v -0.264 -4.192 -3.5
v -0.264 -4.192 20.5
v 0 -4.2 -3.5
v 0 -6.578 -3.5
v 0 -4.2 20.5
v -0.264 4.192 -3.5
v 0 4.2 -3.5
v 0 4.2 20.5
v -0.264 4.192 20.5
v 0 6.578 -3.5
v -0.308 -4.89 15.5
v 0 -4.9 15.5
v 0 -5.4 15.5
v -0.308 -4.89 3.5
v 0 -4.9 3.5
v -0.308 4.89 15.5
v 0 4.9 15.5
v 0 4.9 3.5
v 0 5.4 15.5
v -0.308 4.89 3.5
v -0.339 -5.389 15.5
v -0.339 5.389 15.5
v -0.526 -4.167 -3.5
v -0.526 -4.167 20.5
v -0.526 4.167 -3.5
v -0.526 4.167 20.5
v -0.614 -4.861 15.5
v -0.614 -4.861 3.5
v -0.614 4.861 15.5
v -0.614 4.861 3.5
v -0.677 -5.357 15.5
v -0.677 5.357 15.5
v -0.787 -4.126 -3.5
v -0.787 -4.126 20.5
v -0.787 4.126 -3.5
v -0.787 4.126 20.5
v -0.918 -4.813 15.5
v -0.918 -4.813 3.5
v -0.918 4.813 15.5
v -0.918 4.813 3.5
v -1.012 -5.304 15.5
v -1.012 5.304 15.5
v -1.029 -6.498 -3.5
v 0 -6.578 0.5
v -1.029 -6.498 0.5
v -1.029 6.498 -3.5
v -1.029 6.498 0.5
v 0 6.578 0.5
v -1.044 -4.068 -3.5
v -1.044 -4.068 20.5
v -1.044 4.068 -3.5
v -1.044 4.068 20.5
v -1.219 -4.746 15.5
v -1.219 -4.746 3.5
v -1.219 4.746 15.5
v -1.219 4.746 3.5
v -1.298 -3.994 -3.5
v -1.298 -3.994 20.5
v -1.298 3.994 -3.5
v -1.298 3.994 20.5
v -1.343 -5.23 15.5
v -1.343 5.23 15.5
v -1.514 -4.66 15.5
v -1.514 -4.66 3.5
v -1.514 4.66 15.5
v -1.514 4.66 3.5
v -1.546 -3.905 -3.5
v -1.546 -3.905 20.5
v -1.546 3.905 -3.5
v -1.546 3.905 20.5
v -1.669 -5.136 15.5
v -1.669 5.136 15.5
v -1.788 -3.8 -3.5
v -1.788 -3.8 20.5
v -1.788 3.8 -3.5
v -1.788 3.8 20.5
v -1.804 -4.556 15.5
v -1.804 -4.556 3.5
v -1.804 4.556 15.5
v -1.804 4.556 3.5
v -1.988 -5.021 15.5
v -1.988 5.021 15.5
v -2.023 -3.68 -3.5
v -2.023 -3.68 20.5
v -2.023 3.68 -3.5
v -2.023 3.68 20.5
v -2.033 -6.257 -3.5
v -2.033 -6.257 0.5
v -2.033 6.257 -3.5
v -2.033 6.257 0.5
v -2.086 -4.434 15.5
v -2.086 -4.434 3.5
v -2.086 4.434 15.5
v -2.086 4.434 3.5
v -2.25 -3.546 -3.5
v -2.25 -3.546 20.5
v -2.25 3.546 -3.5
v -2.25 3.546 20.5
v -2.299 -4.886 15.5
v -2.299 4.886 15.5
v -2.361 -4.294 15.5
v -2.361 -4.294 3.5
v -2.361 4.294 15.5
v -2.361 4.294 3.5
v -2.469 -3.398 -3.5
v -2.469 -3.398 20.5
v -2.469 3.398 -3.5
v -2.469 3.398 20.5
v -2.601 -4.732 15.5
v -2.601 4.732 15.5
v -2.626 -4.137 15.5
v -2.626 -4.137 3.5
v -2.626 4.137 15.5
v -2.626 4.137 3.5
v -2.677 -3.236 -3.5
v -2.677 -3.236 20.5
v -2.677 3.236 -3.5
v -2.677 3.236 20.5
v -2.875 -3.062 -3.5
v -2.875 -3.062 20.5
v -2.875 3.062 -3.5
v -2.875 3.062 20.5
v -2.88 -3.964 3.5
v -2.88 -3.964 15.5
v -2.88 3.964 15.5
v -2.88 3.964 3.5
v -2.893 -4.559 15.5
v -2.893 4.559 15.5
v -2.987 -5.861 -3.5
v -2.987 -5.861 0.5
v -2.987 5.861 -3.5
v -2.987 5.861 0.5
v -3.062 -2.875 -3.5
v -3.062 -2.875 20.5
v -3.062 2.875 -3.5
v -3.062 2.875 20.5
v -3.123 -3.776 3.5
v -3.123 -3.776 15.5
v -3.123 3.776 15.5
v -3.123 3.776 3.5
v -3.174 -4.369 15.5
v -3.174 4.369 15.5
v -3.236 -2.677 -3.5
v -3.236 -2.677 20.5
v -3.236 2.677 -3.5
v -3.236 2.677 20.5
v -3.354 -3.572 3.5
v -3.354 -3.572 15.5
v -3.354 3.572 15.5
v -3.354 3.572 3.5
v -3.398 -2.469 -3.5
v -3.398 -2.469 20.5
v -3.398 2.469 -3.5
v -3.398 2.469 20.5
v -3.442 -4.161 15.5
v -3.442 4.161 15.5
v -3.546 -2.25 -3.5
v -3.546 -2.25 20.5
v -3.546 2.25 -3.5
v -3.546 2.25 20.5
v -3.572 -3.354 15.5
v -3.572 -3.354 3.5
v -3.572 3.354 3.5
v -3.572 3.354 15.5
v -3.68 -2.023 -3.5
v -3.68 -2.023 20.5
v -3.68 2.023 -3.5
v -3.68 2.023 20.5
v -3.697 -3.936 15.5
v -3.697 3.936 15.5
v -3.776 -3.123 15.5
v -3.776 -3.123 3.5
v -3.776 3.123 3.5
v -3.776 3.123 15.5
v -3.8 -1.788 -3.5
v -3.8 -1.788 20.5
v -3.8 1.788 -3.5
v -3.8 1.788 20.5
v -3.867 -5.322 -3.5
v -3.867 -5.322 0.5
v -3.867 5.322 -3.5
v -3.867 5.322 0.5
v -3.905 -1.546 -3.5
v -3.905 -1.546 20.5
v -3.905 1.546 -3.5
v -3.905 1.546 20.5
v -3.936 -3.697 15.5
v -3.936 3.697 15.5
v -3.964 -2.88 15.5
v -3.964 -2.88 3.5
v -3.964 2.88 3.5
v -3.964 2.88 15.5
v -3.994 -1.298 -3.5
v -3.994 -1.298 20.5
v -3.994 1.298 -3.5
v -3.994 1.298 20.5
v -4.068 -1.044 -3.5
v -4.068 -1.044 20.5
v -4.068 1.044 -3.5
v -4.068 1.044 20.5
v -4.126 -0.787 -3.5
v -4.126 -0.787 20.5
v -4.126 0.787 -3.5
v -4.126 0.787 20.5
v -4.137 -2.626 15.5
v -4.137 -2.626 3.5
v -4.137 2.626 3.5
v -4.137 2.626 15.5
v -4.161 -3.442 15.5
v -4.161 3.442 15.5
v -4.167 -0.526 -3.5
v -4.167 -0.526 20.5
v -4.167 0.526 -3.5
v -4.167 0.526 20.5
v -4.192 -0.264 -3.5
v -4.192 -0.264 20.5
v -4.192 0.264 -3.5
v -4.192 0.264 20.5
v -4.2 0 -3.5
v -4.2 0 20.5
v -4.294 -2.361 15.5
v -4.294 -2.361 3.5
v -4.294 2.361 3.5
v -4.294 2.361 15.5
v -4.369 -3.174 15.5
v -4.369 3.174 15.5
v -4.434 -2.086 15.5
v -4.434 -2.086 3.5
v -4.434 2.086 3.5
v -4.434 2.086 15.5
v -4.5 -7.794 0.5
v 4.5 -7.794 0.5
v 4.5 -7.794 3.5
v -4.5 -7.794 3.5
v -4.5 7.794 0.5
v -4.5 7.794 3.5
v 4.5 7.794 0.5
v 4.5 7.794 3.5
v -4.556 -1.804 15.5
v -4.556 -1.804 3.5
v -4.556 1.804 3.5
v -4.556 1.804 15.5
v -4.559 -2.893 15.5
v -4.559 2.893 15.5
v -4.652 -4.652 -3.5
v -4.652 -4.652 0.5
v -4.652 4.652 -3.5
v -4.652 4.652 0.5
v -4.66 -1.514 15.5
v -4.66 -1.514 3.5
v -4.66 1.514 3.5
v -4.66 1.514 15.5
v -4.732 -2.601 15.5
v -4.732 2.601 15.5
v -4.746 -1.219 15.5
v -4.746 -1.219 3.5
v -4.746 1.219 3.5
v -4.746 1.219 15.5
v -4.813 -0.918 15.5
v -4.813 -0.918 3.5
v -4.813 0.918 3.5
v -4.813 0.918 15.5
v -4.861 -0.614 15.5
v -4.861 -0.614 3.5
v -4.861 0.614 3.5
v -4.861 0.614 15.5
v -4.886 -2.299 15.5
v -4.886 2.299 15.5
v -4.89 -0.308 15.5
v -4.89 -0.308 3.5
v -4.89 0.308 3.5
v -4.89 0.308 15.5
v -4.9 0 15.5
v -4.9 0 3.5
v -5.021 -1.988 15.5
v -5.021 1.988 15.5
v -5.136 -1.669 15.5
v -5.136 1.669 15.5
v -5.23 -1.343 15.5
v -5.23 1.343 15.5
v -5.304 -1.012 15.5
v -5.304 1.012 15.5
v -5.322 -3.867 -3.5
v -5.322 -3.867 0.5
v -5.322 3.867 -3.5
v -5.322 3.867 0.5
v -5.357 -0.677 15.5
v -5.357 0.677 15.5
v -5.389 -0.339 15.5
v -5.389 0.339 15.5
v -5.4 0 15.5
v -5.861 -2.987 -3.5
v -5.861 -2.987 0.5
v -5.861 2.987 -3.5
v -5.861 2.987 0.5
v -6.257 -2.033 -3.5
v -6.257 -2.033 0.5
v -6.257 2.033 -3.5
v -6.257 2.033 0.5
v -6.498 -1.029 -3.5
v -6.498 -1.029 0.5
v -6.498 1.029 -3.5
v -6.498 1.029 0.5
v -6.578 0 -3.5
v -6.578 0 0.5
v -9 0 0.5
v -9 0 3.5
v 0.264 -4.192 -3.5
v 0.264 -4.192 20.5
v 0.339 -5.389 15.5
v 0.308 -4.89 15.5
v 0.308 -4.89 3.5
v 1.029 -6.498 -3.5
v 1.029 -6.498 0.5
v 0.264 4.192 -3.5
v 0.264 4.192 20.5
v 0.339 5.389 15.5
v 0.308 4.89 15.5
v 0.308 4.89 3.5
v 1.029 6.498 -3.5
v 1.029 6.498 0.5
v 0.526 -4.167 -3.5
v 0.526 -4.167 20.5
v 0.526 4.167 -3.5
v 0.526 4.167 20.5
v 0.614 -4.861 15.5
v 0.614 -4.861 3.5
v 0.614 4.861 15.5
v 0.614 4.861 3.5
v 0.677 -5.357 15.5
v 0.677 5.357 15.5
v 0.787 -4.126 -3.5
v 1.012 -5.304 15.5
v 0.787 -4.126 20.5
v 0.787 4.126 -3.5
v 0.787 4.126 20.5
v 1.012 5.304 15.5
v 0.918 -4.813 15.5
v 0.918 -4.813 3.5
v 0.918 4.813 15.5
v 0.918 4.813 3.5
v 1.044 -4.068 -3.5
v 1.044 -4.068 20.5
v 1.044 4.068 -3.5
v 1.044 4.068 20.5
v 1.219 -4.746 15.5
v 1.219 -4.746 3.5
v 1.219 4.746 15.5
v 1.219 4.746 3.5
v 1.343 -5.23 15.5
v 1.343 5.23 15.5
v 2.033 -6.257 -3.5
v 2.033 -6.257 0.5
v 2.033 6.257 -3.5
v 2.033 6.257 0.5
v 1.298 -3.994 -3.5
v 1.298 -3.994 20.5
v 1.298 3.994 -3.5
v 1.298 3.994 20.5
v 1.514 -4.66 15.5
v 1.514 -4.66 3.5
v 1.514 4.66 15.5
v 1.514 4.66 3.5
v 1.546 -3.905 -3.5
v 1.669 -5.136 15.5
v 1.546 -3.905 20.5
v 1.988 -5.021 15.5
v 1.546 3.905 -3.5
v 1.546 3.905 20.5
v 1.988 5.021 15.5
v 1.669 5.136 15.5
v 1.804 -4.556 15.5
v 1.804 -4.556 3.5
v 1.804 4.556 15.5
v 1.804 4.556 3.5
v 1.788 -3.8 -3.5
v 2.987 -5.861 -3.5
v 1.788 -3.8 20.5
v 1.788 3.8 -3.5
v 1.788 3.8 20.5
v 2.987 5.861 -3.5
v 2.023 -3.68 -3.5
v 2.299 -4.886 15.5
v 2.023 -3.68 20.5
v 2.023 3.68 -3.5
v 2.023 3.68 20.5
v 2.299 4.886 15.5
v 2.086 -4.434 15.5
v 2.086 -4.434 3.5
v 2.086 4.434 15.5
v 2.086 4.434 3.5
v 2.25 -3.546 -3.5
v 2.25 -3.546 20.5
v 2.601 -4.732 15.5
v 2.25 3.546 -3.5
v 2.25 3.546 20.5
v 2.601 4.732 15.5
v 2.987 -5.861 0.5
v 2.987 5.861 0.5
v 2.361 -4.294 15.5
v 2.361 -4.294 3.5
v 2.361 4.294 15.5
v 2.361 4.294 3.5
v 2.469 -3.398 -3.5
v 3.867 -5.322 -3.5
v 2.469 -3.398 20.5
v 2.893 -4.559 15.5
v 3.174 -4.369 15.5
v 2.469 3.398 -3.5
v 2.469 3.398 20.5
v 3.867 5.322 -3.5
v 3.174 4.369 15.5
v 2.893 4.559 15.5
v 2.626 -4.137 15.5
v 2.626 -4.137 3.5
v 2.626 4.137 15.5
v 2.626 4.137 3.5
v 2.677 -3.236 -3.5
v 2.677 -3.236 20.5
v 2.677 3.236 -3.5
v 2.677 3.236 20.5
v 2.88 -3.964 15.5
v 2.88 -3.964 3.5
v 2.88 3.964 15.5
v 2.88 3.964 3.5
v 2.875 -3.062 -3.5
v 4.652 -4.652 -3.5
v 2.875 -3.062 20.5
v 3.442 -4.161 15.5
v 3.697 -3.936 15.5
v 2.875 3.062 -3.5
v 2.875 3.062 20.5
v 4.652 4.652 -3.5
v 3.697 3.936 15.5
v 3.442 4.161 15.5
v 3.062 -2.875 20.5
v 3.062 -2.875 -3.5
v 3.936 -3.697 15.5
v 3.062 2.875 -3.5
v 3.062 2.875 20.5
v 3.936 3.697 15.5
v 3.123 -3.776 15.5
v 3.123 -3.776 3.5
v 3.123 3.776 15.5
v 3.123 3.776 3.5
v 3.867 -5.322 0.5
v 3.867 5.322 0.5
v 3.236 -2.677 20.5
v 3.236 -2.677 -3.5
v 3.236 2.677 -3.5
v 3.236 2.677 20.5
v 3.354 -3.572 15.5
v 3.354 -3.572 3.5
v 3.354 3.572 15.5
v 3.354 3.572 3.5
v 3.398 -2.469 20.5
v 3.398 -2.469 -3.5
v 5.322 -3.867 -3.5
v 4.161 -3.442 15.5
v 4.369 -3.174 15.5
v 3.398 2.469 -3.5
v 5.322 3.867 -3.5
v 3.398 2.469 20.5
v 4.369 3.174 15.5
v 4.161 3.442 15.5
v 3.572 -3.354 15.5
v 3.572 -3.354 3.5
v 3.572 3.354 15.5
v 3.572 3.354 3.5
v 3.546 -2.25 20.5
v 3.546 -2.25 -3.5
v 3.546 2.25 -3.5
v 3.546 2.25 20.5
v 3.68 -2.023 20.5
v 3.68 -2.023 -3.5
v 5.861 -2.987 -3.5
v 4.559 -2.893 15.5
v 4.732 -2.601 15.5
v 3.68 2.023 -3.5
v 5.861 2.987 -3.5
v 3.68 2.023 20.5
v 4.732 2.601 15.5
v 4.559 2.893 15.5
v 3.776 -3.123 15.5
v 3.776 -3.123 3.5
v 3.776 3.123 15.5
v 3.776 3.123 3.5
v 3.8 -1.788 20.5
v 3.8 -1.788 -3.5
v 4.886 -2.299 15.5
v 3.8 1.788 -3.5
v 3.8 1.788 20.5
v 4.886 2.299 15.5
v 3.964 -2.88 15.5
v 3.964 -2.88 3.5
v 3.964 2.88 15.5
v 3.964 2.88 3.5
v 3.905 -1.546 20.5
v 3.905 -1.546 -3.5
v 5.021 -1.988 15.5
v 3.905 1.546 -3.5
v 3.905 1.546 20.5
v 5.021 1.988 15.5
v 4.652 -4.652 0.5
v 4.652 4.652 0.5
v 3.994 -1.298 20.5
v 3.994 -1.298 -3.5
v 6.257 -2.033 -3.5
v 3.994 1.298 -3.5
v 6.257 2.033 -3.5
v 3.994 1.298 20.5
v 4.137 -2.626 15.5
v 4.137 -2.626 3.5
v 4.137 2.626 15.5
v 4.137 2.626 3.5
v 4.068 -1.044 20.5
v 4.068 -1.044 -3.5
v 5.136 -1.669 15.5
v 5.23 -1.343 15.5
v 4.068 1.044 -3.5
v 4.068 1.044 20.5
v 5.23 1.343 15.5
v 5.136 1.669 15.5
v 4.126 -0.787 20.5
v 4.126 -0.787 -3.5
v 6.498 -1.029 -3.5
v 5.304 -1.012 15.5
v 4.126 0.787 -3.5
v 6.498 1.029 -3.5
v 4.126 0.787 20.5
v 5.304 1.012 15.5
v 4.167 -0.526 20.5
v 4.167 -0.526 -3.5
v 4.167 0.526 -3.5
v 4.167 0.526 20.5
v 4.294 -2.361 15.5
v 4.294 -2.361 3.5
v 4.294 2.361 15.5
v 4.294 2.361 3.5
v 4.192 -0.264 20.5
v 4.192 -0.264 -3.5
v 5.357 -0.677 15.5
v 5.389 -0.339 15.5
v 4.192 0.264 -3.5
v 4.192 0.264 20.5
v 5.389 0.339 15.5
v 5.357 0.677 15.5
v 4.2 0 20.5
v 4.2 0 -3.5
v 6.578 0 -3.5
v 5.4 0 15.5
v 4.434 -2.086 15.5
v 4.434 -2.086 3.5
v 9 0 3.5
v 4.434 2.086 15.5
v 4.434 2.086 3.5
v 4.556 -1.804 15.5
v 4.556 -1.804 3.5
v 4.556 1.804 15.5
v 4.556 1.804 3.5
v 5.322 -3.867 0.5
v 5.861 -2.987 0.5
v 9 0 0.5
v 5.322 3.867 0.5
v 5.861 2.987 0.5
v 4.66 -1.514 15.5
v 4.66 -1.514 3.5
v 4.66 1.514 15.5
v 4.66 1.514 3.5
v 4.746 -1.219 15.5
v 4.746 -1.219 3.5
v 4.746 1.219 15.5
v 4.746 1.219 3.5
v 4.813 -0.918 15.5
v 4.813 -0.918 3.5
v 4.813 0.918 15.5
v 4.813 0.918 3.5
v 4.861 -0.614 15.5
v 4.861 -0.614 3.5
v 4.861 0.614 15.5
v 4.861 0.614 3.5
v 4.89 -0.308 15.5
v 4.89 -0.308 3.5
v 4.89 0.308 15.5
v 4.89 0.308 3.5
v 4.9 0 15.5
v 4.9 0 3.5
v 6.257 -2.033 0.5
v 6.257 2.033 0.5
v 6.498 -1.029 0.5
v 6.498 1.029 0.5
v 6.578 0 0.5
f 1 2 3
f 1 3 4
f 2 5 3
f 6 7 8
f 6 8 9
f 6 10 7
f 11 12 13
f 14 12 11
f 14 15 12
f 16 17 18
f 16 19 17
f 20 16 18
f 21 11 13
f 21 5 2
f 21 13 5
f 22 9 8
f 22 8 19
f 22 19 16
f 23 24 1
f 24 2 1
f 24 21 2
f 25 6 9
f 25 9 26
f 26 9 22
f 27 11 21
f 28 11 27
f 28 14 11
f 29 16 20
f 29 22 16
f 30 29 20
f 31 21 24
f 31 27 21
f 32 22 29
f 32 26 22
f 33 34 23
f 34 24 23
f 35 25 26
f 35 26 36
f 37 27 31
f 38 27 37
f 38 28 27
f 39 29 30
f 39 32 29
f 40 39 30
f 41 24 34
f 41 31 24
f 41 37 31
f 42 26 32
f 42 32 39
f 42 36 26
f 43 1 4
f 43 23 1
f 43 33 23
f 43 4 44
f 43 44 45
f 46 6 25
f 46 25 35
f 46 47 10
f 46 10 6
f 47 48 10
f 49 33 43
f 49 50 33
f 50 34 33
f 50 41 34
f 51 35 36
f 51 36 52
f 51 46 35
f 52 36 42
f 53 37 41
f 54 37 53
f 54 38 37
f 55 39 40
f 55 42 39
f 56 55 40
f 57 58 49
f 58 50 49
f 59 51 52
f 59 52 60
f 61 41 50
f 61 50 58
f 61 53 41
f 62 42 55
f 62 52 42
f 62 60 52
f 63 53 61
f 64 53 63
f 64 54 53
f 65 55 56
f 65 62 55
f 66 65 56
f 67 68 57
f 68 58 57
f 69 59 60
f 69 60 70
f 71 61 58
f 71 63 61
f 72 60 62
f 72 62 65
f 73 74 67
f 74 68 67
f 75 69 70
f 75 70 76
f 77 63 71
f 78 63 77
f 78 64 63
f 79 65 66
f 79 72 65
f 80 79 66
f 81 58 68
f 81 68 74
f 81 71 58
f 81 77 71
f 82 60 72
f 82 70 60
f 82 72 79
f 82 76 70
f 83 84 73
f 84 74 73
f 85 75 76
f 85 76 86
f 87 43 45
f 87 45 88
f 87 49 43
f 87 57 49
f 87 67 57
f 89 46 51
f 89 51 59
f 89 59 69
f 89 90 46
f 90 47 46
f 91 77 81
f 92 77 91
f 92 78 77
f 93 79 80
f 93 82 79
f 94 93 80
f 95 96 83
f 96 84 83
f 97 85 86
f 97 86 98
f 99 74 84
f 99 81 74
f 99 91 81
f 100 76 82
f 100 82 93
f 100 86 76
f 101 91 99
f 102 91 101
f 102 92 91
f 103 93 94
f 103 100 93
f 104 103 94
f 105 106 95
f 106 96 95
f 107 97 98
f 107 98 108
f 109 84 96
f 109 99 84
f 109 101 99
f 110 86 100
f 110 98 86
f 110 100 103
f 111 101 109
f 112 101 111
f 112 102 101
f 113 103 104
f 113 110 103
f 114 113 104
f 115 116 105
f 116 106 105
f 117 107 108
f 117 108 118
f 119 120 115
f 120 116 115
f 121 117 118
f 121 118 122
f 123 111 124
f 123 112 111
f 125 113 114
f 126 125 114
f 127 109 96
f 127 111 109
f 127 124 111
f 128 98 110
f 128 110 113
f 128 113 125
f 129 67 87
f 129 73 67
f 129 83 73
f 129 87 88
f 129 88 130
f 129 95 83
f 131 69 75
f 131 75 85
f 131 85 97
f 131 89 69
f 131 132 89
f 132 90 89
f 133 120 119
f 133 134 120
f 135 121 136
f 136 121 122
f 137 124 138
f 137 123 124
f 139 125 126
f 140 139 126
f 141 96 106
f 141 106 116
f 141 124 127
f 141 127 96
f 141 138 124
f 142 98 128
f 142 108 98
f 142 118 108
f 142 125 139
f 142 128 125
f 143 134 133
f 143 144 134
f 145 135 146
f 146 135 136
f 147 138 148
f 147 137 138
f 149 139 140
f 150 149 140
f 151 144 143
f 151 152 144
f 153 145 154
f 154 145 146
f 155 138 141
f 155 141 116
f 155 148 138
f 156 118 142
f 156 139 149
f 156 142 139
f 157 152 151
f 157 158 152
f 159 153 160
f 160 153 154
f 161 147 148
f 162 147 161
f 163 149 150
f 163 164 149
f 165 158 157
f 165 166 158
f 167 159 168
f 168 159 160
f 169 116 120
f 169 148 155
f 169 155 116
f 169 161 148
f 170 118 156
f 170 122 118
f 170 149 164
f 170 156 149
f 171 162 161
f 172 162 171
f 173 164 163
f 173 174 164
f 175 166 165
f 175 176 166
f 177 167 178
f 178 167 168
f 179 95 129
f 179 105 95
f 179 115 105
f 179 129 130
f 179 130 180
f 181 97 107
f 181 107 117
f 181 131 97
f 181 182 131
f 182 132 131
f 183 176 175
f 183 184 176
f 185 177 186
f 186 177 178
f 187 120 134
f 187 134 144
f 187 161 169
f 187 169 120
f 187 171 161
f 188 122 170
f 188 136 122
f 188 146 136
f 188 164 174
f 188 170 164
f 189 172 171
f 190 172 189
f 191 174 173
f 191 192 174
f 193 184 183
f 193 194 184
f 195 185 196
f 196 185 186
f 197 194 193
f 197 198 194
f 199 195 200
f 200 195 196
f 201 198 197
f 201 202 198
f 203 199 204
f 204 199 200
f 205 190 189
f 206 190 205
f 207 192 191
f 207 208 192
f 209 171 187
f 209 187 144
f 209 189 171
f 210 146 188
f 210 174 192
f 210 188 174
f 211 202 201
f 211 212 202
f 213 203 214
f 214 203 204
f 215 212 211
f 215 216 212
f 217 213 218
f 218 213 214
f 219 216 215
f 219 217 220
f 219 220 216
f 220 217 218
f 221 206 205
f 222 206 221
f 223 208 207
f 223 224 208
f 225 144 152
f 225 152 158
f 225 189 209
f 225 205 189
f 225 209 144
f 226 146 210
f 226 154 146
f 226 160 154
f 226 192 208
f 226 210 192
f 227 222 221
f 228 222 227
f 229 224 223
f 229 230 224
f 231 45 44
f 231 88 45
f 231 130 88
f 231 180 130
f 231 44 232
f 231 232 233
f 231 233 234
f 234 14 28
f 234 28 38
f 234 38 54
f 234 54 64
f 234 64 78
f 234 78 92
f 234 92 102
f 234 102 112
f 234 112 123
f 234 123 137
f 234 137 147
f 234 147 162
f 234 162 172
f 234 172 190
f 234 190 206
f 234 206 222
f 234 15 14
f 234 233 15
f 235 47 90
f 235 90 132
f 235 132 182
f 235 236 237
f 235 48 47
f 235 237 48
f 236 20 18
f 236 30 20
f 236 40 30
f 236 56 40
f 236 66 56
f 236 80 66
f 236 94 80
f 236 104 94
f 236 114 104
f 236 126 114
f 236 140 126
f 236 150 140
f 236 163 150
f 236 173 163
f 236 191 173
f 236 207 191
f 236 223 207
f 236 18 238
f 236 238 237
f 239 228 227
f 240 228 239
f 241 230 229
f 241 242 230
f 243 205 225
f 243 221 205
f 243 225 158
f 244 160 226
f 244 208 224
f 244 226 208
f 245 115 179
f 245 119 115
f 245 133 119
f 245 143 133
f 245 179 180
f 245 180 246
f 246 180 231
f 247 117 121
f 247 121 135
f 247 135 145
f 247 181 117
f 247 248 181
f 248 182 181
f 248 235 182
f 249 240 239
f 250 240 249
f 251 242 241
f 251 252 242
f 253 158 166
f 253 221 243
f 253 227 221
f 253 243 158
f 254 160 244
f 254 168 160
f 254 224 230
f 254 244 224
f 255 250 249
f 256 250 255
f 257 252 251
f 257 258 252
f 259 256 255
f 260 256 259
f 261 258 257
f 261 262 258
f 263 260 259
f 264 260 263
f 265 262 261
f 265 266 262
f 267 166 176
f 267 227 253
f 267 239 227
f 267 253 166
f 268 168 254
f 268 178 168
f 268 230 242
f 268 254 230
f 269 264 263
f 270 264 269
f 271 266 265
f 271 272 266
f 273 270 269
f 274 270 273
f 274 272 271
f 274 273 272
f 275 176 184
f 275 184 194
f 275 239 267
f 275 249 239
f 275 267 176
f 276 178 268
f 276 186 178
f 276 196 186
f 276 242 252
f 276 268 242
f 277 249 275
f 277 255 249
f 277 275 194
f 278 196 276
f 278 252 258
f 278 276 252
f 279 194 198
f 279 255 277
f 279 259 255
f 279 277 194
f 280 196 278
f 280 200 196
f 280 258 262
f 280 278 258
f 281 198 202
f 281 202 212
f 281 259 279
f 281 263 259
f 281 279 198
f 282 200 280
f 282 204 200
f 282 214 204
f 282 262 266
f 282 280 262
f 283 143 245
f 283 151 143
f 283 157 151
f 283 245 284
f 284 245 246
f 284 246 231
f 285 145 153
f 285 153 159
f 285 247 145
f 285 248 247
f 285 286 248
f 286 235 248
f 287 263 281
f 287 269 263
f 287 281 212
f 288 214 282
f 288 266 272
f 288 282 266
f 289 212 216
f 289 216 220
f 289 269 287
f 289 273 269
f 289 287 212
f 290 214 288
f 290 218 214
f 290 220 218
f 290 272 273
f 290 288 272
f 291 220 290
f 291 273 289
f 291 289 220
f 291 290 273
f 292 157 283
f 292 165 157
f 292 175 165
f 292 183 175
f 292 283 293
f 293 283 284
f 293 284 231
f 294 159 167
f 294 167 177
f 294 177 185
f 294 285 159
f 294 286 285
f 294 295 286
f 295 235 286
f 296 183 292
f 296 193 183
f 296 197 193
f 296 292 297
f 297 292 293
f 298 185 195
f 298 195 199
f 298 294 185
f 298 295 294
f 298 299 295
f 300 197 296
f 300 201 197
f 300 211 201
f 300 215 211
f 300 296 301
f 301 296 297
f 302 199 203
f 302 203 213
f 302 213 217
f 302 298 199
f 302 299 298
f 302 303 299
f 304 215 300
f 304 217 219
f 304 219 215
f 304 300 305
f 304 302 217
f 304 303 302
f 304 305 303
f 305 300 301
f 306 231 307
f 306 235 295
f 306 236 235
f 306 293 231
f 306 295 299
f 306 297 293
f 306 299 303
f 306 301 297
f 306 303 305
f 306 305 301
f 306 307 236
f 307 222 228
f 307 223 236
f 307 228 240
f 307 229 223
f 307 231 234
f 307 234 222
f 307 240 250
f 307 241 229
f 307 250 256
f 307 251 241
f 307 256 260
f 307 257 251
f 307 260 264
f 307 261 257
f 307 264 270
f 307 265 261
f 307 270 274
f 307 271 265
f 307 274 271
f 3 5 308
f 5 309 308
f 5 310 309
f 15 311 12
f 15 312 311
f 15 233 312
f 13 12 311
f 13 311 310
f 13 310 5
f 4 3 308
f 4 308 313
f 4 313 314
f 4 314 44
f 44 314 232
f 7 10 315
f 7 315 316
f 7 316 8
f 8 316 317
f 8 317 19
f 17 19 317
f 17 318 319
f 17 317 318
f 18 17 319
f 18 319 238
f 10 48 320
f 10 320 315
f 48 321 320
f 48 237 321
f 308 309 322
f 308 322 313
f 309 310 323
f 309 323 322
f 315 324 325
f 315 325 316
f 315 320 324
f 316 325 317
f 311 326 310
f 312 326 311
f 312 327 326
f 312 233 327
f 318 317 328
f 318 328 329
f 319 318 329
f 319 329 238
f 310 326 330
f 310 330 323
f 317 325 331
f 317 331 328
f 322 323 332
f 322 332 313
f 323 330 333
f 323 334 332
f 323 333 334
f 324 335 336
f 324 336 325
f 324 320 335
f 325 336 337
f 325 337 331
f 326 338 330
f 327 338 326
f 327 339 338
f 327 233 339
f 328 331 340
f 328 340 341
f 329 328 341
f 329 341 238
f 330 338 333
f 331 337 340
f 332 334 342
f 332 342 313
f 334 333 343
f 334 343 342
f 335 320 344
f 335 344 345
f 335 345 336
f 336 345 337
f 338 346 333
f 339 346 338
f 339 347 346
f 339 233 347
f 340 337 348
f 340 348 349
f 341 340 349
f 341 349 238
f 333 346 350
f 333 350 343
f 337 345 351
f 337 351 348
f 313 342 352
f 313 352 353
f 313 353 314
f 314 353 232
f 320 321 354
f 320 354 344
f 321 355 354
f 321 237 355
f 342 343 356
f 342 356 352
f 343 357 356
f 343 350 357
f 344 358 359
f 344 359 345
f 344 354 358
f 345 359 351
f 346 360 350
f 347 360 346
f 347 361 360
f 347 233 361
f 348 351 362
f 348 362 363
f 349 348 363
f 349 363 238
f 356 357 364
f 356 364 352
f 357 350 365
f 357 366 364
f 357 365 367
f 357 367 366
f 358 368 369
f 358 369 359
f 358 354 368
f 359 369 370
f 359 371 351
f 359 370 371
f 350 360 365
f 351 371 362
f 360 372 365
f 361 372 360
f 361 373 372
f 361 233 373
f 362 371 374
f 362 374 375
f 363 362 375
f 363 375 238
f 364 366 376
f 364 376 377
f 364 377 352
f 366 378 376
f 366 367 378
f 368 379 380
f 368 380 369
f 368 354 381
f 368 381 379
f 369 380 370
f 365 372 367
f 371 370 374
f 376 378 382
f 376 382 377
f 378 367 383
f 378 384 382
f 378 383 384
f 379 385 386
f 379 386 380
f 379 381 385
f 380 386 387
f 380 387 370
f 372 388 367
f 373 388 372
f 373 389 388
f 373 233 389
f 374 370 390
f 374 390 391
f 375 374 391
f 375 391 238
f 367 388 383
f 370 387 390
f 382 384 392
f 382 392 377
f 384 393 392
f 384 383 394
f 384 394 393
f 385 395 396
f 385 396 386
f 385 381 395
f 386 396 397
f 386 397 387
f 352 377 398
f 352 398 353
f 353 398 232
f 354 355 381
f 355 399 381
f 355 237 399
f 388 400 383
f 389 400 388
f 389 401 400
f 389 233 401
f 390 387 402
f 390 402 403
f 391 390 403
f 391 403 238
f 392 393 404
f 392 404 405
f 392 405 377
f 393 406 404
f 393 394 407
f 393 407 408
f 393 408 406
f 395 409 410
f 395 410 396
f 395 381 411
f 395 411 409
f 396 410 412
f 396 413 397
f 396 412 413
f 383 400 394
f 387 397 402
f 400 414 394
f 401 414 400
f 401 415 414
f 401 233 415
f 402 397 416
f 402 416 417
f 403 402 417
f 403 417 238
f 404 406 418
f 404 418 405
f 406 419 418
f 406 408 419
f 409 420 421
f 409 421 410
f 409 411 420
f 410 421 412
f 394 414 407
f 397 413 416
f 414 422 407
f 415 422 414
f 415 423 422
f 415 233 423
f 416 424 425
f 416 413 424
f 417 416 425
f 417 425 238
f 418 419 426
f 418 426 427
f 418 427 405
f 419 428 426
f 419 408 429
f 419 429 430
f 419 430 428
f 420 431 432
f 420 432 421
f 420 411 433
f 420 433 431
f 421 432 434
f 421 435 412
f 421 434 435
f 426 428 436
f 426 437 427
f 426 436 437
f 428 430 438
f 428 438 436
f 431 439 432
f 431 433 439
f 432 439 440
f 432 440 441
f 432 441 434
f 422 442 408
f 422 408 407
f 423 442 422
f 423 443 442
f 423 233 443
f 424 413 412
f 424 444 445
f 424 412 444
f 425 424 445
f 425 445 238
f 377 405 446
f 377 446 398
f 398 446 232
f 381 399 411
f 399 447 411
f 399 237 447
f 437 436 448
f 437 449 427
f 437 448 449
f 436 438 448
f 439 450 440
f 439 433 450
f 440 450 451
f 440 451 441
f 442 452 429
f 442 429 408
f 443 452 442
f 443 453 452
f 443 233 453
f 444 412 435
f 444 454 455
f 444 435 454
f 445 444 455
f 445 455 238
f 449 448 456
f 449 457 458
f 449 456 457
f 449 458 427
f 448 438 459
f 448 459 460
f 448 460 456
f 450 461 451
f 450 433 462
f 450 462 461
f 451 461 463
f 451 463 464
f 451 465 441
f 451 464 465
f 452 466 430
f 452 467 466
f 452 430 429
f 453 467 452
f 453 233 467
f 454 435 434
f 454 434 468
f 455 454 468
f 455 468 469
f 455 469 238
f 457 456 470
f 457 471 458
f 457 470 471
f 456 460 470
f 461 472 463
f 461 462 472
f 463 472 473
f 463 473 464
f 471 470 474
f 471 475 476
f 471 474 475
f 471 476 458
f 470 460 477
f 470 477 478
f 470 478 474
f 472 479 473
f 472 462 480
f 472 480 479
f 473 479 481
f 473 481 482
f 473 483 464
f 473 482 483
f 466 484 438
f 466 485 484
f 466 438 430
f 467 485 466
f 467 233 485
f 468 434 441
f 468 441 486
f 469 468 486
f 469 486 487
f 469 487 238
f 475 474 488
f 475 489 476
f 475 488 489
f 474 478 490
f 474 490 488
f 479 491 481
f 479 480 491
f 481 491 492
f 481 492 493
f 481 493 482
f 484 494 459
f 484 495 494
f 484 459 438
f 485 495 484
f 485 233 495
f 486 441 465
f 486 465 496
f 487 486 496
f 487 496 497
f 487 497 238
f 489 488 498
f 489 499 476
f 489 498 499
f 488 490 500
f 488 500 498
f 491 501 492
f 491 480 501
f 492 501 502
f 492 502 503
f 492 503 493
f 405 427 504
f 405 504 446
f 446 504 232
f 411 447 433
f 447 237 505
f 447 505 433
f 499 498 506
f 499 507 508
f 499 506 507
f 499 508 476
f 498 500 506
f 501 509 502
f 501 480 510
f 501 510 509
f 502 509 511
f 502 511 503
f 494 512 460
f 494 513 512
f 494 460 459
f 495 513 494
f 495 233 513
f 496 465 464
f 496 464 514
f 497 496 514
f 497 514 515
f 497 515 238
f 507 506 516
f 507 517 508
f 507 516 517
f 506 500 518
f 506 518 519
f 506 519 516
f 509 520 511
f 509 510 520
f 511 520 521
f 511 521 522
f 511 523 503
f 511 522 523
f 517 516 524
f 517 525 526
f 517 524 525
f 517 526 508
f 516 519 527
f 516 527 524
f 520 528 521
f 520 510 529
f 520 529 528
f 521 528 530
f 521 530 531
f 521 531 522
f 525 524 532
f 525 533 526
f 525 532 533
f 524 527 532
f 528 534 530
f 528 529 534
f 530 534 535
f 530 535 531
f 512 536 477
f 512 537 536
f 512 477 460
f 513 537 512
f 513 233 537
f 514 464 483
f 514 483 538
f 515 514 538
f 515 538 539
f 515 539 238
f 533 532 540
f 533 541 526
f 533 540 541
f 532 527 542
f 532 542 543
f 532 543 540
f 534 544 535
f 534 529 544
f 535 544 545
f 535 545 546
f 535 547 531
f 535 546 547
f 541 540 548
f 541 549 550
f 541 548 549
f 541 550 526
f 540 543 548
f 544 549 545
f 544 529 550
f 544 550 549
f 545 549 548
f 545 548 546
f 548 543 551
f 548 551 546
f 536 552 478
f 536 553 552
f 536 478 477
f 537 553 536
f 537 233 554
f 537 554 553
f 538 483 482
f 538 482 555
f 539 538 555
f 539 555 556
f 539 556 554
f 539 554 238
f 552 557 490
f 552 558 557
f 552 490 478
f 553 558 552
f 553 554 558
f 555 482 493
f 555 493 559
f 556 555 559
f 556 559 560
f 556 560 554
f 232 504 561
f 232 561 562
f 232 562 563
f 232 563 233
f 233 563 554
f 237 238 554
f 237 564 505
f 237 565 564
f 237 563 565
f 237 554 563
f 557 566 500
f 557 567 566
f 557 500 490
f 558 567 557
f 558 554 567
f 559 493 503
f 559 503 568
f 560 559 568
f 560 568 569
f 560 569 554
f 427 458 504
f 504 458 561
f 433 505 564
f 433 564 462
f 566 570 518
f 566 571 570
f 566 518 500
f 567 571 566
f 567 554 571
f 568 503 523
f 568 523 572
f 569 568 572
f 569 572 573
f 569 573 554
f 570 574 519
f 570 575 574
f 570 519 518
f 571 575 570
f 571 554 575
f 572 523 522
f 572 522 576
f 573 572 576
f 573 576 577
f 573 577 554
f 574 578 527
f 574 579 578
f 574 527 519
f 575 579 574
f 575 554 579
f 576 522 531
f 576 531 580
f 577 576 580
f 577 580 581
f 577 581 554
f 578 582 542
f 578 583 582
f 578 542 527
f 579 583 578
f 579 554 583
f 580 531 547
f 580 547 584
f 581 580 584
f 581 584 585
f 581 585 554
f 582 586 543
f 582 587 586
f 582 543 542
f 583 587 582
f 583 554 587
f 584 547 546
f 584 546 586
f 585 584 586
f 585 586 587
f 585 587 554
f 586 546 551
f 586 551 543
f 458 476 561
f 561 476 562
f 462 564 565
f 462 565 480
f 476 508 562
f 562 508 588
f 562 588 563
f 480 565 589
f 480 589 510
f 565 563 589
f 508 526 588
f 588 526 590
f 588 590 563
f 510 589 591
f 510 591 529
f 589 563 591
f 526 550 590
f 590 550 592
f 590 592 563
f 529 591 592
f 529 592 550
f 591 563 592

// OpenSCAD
// file: ../../parameters.scad
//|==========================================|//
//|               CLOUD CHAMBER              |//
//|==========================================|//


//========== FUNCTIONS ==========//

//unit conversions
function inch_to_mm(inch) = inch*25.4;
function mm_to_inch(mm) = mm/25.4;


//========== SCREWS ==========//

//Screw diameter and nut for M10 [mm]
M10_screw_diameter=10.4;
M10_head_height = 10;
M10_head_diameter = 16+0.5;
M10_nut_height = 10.5;
M10_nut_diameter = 25.5;
M10_nut_pocket = 22.3;

//Screw diameter and nut for M8 [mm]
M8_screw_diameter = 8 + 1;
M8_head_height = 8;
M8_head_diameter = 13.5;
M8_nut_height = 7.5;
M8_nut_diameter = 14.4 + 0.5;
M8_nut_pocket = 13 + 0.5;

//Screw diameter and nut for M6 [mm]
M6_screw_diameter=6.5;
M6_head_diameter = 10+0.5;
M6_head_height = 6;
M6_nut_height = 4.9;
M6_nut_diameter = 11.8;
M6_nut_pocket = 10.4;

//Screw diameter and nut for M5 [mm]
M5_screw_diameter=5.5;
M5_head_height = 5;
M5_head_diameter = 13+0.5;
M5_nut_height = 4.5;
M5_nut_diameter = 9.4;
M5_nut_pocket = 8.4;

//Screw diameter and nut for M4 [mm]
M4_screw_diameter=4.5;
M4_screw_head_height = 4;
M4_nut_height = 3.2;
M4_nut_diameter = 8.4;
M4_nut_pocket = 7.5;

//Screw diameter and nut for M3 [mm]
M3_screw_diameter = 3.2;
M3_nut_height = 2.7;
M3_nut_diameter = 6.6;
M3_screw_head_height = 3;
M3_nut_pocket = 5.6;

//Screw diameter and nut for M2,5 [mm]
M2_5_screw_diameter = 2.7;
M2_5_nut_height = 2.3;
M2_5_nut_diameter = 6;
M2_5_nut_pocket = 5.1;


//========== CHAMBER ==========//

//observation_surface_x
observation_surface_x = 200.5;
observation_surface_y = 100.5;

//cooper block
cooper_block_x = 200;
cooper_block_y = 100;
cooper_block_thickness = 8;

//chamber frame
chamber_width = 400;
chamber_deepth = 350;
chamber_height = 250;

//service door
door_width = 200;

//peltiers
peltier_size_x = 40;
peltier_size_y = 40;
peltier_thickness = 2.9;
peltier_cable_diameter = 4;

//water ALU block
water_block_width = 40;
water_block_length = 120;
water_block_thickness = 12.5;

//hose
hose_outer_diameter = 10;
hose_inner_diameter = 8;

//nextion display 2.8"
nextion_board_width = 85;
nextion_board_height = 50;
nextion_board_thickness = 1.6;
nextion_display_width = 69.5;
nextion_display_height = 50;
nextion_thickness = 7;
nextion_screw_diameter = M2_5_screw_diameter;
nextion_screw_width_distance = 78.5;
nextion_screw_height_distance = 49;


//========== ALU PROFILES ==========//

//30x30 profile
ALU30_size = 30;
ALU30_groove = 8;

//20x20 profile
ALU20_size = 20;
ALU20_groove = 6;


//========== ELECTRONIC DEVICE ==========//

//TO-92 package
TO92_width = 4.6;
TO92_height = 4.6;
TO92_thickness = 3.9;
TO92_pins = 14.5;
TO92_bottom_to_pins = 1;


//========== COOLING CIRCUIT ==========//

//fitting
fitting_thread_diameter = 13.157;
fitting_thread_height = 4;
fitting_height = 20;
fitting_inner_diameter = 8.4;
fitting_wall_thickness = 0.7;
fitting_overhang_height = 5;
fitting_overhang_size = 0.5;
fitting_nut_diameter = 18;
fitting_nut_height = 3;

//pump
pump_diameter = 70;
pump_height = 135;
pump_in_out_distance = 40;
pump_in_out_diameter = 25;
pump_in_out_height = 30;
pump_in_out_overlap = 5;

//fan
fan_size = 120;
fan_thickness = 20;
fan_frame_thickness = 2.5;
fan_diameter = fan_size-2;
fan_center_diameter = 30;
fan_blade_count = 9;
fan_blade_center_size = 5;
fan_blade_outer_size = 45;
fan_blade_angle = 25;
fan_blade_thickness = 1;
fan_screw_diameter = M4_screw_diameter;
fan_screw_distance = 7;

//radiator
radiator_width = 392;
radiator_height = 120;
radiator_thickness = 27;
radiator_fpi = 16;
radiator_fin_thickness = 0.05;
radiator_frame_thickness = 2;
radiator_frame_overhang = 4;
radiator_fans_translate = 17-fan_screw_distance;
radiator_pipe_count = 6;
radiator_pipe_thickness = 2;
// main file
include <../../parameters.scad>

module fitting() {
    translate([0, 0, 0.5])
    difference() {
        union() {
            translate([0, 0, -fitting_thread_height])
                cylinder(d=fitting_thread_diameter, h=fitting_thread_height, $fn=40);

            cylinder(d=fitting_inner_diameter+fitting_wall_thickness*2, h=fitting_height-fitting_overhang_height, $fn=100);

            cylinder(d=fitting_nut_diameter, h=fitting_nut_height, $fn=6);

            translate([0, 0, fitting_height-fitting_overhang_height])
                cylinder(d1=fitting_inner_diameter+fitting_wall_thickness*2+fitting_overhang_size*2, d2=fitting_inner_diameter, h=fitting_overhang_height, $fn=100);
        }

        cylinder(d=fitting_inner_diameter, h=100, center=true, $fn=100);
    }
}

fitting();
